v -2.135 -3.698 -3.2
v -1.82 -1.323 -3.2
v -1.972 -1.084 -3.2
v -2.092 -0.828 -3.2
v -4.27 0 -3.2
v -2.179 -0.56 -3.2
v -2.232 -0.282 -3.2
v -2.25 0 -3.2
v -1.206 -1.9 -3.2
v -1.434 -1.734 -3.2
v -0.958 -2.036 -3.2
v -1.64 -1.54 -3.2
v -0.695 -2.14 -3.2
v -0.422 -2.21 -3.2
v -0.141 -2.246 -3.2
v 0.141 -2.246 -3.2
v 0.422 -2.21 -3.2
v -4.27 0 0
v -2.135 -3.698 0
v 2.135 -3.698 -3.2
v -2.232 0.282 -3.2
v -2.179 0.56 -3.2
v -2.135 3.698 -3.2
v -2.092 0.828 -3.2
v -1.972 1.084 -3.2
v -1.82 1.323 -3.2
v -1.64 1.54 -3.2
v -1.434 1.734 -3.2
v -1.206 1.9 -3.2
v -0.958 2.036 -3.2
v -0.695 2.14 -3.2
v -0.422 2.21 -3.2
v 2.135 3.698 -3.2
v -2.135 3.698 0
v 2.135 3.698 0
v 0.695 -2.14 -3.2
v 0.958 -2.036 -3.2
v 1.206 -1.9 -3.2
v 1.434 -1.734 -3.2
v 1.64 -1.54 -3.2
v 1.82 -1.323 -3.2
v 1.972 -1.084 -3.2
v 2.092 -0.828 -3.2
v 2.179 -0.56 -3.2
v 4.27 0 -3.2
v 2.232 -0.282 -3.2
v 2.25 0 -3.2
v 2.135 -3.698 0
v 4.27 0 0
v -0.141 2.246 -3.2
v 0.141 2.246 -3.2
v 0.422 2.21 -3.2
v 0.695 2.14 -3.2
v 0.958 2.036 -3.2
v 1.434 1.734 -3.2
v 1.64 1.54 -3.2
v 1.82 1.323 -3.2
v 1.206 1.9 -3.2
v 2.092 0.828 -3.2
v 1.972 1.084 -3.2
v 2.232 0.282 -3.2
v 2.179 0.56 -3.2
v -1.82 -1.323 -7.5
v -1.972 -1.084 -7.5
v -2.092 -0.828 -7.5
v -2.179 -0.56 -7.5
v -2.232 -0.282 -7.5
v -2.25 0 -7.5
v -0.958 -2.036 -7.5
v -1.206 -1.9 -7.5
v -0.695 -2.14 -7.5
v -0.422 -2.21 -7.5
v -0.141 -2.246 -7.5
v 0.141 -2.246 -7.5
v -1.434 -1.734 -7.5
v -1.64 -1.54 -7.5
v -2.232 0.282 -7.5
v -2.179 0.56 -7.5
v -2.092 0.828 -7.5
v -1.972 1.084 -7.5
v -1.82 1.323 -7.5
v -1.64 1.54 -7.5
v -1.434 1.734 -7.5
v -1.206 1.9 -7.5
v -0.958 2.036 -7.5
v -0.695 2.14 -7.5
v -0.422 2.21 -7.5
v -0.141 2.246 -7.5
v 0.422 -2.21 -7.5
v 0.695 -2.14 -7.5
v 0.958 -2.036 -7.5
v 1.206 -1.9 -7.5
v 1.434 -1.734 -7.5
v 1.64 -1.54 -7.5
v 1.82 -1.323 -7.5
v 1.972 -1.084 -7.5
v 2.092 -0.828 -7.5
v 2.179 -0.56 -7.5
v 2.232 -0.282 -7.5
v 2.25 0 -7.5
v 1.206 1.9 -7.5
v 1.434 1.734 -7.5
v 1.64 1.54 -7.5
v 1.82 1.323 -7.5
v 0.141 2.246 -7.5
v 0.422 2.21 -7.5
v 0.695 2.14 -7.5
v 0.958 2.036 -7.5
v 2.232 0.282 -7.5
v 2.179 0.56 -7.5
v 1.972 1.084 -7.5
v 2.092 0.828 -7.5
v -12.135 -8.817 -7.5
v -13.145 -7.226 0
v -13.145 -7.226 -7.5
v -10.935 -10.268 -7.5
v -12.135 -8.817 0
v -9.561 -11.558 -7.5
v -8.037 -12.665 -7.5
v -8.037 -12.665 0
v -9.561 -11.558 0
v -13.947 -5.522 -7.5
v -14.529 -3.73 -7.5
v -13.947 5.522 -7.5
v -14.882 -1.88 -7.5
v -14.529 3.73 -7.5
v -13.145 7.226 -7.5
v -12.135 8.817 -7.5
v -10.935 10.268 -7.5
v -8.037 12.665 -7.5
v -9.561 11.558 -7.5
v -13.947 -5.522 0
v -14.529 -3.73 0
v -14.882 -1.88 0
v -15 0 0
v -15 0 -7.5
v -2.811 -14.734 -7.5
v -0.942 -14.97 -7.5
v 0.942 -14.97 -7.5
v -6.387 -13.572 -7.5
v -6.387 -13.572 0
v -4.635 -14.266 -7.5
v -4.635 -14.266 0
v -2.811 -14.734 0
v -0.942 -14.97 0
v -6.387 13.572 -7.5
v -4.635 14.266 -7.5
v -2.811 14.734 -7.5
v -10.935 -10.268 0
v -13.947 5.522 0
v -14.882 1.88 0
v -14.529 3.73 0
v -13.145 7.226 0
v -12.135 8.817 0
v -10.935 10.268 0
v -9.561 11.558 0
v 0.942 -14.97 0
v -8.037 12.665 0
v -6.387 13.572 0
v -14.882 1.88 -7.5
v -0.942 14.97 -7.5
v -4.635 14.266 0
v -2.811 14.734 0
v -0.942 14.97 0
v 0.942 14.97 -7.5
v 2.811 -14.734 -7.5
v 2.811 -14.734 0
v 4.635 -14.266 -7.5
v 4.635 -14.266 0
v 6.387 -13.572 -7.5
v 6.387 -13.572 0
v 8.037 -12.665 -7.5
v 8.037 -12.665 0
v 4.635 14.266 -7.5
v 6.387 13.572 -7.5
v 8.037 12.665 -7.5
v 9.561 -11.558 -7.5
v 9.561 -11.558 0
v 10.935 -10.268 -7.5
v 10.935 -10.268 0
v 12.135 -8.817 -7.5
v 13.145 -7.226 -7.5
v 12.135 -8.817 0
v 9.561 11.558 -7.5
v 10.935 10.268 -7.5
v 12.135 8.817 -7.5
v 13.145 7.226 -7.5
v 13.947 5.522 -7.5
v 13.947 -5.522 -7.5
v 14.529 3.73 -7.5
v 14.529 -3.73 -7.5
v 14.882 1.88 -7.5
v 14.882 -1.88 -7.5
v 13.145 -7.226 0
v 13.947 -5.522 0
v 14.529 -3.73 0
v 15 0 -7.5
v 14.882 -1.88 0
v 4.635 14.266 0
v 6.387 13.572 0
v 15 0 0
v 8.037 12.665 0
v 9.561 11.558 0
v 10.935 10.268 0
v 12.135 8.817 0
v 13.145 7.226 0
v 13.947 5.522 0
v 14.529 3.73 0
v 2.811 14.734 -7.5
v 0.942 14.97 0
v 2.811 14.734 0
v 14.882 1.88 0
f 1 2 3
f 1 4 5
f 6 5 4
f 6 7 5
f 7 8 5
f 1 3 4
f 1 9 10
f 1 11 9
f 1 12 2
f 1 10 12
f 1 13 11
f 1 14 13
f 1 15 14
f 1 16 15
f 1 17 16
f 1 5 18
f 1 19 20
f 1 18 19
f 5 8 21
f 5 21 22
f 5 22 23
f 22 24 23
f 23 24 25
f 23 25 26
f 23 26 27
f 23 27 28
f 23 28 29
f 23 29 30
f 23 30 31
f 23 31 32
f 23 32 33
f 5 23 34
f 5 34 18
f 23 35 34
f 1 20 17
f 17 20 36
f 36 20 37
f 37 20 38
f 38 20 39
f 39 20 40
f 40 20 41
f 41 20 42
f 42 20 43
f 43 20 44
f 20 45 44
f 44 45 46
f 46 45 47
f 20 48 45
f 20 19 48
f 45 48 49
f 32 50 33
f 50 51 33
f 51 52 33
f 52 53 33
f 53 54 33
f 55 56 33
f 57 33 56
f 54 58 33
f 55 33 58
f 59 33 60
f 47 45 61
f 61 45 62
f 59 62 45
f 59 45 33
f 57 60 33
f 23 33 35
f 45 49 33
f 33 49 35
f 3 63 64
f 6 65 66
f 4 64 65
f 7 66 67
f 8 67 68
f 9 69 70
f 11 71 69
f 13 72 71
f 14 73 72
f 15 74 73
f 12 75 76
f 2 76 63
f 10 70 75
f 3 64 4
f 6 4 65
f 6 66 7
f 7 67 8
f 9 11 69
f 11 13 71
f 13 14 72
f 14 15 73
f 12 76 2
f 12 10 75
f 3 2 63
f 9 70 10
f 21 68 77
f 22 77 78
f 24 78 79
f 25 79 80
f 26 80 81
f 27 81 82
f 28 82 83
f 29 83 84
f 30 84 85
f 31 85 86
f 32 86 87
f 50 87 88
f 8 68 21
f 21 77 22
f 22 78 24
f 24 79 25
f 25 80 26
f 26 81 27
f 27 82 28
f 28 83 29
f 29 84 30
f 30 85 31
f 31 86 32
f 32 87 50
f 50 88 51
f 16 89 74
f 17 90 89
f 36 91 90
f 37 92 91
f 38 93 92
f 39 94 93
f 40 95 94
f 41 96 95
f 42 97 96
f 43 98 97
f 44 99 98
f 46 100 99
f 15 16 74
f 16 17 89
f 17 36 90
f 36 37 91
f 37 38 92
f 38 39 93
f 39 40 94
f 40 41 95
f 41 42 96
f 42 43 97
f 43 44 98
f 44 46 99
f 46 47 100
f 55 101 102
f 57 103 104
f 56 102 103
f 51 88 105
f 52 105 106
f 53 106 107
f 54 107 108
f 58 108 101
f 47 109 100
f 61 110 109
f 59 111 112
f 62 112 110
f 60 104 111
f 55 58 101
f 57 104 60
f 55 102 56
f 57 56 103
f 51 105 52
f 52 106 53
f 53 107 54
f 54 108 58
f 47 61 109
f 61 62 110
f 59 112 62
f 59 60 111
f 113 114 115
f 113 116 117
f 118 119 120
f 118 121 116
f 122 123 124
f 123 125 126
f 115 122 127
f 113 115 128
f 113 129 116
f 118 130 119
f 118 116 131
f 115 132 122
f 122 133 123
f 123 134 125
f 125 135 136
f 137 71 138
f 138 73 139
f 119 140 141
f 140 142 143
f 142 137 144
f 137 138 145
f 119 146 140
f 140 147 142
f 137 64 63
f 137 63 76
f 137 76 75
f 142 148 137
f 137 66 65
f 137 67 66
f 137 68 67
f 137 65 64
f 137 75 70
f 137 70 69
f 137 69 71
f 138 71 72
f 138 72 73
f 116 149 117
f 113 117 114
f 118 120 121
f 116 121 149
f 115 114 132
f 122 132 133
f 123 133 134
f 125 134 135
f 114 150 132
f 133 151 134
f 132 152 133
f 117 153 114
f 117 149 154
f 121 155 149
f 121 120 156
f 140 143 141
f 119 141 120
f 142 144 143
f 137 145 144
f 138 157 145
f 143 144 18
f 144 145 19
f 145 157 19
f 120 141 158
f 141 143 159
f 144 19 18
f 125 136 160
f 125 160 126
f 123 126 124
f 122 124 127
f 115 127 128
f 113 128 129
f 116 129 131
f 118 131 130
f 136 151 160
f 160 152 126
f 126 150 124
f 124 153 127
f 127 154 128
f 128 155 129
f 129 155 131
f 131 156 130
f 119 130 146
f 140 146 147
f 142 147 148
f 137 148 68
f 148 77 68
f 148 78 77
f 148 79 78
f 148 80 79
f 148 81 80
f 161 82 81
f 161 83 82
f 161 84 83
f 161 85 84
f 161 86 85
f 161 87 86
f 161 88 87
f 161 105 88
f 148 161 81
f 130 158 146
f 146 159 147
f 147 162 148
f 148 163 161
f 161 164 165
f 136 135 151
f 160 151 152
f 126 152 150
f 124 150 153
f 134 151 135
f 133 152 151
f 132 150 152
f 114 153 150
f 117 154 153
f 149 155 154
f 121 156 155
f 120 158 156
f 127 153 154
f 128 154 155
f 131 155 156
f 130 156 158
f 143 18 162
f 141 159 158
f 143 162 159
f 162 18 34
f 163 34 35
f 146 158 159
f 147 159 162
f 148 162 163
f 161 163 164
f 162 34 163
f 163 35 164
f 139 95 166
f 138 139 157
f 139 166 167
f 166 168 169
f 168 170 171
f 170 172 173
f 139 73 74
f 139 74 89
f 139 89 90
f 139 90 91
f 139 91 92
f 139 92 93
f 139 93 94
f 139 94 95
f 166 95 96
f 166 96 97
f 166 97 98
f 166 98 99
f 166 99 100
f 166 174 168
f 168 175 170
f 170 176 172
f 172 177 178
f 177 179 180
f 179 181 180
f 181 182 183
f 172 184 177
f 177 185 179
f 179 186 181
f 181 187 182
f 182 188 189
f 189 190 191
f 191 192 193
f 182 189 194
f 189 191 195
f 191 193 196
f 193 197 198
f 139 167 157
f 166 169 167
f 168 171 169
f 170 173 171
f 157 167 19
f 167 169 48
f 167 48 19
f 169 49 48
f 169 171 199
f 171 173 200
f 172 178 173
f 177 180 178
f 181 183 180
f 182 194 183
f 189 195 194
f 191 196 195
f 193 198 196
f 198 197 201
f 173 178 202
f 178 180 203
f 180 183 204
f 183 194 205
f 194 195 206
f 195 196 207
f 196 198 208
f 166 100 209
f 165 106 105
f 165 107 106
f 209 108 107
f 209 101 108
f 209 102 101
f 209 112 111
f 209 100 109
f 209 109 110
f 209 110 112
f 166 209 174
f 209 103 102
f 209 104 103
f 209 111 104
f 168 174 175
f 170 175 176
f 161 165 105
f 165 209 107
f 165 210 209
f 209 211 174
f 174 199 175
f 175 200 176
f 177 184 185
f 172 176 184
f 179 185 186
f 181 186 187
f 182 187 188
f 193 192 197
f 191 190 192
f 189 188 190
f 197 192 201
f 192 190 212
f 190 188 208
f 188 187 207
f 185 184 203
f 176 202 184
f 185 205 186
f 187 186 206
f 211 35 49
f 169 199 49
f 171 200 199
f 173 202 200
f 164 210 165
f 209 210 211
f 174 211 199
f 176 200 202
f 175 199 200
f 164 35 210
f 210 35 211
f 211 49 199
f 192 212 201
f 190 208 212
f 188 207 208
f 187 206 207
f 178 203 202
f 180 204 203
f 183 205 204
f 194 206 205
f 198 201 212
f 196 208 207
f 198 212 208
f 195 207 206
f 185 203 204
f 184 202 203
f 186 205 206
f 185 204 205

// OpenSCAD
$fn = 50;

difference() {
	union() {
		translate(v = [0, 0, -7.5]) {
			cylinder(h = 7.5, r = 15.0);
		}
	}
	union() {
		translate(v = [0, 0, 0]) {
			rotate(a = [0, 0, 0]) {
				difference() {
					union() {
						translate(v = [0, 0, -3.2]) {
							linear_extrude(height = 3.2) {
								polygon(points = [[4.2698, 0.0], [2.1349000000000005, 3.697755269078796], [-2.134899999999999, 3.6977552690787965], [-4.2698, 5.228996902999369e-16], [-2.134900000000002, -3.6977552690787956], [2.1348999999999974, -3.697755269078798]]);
							}
						}
					}
					union();
				}
			}
		}
		#translate(v = [0, 0, -100.0]) {
			cylinder(h = 200, r = 2.25);
		}
	}
}
